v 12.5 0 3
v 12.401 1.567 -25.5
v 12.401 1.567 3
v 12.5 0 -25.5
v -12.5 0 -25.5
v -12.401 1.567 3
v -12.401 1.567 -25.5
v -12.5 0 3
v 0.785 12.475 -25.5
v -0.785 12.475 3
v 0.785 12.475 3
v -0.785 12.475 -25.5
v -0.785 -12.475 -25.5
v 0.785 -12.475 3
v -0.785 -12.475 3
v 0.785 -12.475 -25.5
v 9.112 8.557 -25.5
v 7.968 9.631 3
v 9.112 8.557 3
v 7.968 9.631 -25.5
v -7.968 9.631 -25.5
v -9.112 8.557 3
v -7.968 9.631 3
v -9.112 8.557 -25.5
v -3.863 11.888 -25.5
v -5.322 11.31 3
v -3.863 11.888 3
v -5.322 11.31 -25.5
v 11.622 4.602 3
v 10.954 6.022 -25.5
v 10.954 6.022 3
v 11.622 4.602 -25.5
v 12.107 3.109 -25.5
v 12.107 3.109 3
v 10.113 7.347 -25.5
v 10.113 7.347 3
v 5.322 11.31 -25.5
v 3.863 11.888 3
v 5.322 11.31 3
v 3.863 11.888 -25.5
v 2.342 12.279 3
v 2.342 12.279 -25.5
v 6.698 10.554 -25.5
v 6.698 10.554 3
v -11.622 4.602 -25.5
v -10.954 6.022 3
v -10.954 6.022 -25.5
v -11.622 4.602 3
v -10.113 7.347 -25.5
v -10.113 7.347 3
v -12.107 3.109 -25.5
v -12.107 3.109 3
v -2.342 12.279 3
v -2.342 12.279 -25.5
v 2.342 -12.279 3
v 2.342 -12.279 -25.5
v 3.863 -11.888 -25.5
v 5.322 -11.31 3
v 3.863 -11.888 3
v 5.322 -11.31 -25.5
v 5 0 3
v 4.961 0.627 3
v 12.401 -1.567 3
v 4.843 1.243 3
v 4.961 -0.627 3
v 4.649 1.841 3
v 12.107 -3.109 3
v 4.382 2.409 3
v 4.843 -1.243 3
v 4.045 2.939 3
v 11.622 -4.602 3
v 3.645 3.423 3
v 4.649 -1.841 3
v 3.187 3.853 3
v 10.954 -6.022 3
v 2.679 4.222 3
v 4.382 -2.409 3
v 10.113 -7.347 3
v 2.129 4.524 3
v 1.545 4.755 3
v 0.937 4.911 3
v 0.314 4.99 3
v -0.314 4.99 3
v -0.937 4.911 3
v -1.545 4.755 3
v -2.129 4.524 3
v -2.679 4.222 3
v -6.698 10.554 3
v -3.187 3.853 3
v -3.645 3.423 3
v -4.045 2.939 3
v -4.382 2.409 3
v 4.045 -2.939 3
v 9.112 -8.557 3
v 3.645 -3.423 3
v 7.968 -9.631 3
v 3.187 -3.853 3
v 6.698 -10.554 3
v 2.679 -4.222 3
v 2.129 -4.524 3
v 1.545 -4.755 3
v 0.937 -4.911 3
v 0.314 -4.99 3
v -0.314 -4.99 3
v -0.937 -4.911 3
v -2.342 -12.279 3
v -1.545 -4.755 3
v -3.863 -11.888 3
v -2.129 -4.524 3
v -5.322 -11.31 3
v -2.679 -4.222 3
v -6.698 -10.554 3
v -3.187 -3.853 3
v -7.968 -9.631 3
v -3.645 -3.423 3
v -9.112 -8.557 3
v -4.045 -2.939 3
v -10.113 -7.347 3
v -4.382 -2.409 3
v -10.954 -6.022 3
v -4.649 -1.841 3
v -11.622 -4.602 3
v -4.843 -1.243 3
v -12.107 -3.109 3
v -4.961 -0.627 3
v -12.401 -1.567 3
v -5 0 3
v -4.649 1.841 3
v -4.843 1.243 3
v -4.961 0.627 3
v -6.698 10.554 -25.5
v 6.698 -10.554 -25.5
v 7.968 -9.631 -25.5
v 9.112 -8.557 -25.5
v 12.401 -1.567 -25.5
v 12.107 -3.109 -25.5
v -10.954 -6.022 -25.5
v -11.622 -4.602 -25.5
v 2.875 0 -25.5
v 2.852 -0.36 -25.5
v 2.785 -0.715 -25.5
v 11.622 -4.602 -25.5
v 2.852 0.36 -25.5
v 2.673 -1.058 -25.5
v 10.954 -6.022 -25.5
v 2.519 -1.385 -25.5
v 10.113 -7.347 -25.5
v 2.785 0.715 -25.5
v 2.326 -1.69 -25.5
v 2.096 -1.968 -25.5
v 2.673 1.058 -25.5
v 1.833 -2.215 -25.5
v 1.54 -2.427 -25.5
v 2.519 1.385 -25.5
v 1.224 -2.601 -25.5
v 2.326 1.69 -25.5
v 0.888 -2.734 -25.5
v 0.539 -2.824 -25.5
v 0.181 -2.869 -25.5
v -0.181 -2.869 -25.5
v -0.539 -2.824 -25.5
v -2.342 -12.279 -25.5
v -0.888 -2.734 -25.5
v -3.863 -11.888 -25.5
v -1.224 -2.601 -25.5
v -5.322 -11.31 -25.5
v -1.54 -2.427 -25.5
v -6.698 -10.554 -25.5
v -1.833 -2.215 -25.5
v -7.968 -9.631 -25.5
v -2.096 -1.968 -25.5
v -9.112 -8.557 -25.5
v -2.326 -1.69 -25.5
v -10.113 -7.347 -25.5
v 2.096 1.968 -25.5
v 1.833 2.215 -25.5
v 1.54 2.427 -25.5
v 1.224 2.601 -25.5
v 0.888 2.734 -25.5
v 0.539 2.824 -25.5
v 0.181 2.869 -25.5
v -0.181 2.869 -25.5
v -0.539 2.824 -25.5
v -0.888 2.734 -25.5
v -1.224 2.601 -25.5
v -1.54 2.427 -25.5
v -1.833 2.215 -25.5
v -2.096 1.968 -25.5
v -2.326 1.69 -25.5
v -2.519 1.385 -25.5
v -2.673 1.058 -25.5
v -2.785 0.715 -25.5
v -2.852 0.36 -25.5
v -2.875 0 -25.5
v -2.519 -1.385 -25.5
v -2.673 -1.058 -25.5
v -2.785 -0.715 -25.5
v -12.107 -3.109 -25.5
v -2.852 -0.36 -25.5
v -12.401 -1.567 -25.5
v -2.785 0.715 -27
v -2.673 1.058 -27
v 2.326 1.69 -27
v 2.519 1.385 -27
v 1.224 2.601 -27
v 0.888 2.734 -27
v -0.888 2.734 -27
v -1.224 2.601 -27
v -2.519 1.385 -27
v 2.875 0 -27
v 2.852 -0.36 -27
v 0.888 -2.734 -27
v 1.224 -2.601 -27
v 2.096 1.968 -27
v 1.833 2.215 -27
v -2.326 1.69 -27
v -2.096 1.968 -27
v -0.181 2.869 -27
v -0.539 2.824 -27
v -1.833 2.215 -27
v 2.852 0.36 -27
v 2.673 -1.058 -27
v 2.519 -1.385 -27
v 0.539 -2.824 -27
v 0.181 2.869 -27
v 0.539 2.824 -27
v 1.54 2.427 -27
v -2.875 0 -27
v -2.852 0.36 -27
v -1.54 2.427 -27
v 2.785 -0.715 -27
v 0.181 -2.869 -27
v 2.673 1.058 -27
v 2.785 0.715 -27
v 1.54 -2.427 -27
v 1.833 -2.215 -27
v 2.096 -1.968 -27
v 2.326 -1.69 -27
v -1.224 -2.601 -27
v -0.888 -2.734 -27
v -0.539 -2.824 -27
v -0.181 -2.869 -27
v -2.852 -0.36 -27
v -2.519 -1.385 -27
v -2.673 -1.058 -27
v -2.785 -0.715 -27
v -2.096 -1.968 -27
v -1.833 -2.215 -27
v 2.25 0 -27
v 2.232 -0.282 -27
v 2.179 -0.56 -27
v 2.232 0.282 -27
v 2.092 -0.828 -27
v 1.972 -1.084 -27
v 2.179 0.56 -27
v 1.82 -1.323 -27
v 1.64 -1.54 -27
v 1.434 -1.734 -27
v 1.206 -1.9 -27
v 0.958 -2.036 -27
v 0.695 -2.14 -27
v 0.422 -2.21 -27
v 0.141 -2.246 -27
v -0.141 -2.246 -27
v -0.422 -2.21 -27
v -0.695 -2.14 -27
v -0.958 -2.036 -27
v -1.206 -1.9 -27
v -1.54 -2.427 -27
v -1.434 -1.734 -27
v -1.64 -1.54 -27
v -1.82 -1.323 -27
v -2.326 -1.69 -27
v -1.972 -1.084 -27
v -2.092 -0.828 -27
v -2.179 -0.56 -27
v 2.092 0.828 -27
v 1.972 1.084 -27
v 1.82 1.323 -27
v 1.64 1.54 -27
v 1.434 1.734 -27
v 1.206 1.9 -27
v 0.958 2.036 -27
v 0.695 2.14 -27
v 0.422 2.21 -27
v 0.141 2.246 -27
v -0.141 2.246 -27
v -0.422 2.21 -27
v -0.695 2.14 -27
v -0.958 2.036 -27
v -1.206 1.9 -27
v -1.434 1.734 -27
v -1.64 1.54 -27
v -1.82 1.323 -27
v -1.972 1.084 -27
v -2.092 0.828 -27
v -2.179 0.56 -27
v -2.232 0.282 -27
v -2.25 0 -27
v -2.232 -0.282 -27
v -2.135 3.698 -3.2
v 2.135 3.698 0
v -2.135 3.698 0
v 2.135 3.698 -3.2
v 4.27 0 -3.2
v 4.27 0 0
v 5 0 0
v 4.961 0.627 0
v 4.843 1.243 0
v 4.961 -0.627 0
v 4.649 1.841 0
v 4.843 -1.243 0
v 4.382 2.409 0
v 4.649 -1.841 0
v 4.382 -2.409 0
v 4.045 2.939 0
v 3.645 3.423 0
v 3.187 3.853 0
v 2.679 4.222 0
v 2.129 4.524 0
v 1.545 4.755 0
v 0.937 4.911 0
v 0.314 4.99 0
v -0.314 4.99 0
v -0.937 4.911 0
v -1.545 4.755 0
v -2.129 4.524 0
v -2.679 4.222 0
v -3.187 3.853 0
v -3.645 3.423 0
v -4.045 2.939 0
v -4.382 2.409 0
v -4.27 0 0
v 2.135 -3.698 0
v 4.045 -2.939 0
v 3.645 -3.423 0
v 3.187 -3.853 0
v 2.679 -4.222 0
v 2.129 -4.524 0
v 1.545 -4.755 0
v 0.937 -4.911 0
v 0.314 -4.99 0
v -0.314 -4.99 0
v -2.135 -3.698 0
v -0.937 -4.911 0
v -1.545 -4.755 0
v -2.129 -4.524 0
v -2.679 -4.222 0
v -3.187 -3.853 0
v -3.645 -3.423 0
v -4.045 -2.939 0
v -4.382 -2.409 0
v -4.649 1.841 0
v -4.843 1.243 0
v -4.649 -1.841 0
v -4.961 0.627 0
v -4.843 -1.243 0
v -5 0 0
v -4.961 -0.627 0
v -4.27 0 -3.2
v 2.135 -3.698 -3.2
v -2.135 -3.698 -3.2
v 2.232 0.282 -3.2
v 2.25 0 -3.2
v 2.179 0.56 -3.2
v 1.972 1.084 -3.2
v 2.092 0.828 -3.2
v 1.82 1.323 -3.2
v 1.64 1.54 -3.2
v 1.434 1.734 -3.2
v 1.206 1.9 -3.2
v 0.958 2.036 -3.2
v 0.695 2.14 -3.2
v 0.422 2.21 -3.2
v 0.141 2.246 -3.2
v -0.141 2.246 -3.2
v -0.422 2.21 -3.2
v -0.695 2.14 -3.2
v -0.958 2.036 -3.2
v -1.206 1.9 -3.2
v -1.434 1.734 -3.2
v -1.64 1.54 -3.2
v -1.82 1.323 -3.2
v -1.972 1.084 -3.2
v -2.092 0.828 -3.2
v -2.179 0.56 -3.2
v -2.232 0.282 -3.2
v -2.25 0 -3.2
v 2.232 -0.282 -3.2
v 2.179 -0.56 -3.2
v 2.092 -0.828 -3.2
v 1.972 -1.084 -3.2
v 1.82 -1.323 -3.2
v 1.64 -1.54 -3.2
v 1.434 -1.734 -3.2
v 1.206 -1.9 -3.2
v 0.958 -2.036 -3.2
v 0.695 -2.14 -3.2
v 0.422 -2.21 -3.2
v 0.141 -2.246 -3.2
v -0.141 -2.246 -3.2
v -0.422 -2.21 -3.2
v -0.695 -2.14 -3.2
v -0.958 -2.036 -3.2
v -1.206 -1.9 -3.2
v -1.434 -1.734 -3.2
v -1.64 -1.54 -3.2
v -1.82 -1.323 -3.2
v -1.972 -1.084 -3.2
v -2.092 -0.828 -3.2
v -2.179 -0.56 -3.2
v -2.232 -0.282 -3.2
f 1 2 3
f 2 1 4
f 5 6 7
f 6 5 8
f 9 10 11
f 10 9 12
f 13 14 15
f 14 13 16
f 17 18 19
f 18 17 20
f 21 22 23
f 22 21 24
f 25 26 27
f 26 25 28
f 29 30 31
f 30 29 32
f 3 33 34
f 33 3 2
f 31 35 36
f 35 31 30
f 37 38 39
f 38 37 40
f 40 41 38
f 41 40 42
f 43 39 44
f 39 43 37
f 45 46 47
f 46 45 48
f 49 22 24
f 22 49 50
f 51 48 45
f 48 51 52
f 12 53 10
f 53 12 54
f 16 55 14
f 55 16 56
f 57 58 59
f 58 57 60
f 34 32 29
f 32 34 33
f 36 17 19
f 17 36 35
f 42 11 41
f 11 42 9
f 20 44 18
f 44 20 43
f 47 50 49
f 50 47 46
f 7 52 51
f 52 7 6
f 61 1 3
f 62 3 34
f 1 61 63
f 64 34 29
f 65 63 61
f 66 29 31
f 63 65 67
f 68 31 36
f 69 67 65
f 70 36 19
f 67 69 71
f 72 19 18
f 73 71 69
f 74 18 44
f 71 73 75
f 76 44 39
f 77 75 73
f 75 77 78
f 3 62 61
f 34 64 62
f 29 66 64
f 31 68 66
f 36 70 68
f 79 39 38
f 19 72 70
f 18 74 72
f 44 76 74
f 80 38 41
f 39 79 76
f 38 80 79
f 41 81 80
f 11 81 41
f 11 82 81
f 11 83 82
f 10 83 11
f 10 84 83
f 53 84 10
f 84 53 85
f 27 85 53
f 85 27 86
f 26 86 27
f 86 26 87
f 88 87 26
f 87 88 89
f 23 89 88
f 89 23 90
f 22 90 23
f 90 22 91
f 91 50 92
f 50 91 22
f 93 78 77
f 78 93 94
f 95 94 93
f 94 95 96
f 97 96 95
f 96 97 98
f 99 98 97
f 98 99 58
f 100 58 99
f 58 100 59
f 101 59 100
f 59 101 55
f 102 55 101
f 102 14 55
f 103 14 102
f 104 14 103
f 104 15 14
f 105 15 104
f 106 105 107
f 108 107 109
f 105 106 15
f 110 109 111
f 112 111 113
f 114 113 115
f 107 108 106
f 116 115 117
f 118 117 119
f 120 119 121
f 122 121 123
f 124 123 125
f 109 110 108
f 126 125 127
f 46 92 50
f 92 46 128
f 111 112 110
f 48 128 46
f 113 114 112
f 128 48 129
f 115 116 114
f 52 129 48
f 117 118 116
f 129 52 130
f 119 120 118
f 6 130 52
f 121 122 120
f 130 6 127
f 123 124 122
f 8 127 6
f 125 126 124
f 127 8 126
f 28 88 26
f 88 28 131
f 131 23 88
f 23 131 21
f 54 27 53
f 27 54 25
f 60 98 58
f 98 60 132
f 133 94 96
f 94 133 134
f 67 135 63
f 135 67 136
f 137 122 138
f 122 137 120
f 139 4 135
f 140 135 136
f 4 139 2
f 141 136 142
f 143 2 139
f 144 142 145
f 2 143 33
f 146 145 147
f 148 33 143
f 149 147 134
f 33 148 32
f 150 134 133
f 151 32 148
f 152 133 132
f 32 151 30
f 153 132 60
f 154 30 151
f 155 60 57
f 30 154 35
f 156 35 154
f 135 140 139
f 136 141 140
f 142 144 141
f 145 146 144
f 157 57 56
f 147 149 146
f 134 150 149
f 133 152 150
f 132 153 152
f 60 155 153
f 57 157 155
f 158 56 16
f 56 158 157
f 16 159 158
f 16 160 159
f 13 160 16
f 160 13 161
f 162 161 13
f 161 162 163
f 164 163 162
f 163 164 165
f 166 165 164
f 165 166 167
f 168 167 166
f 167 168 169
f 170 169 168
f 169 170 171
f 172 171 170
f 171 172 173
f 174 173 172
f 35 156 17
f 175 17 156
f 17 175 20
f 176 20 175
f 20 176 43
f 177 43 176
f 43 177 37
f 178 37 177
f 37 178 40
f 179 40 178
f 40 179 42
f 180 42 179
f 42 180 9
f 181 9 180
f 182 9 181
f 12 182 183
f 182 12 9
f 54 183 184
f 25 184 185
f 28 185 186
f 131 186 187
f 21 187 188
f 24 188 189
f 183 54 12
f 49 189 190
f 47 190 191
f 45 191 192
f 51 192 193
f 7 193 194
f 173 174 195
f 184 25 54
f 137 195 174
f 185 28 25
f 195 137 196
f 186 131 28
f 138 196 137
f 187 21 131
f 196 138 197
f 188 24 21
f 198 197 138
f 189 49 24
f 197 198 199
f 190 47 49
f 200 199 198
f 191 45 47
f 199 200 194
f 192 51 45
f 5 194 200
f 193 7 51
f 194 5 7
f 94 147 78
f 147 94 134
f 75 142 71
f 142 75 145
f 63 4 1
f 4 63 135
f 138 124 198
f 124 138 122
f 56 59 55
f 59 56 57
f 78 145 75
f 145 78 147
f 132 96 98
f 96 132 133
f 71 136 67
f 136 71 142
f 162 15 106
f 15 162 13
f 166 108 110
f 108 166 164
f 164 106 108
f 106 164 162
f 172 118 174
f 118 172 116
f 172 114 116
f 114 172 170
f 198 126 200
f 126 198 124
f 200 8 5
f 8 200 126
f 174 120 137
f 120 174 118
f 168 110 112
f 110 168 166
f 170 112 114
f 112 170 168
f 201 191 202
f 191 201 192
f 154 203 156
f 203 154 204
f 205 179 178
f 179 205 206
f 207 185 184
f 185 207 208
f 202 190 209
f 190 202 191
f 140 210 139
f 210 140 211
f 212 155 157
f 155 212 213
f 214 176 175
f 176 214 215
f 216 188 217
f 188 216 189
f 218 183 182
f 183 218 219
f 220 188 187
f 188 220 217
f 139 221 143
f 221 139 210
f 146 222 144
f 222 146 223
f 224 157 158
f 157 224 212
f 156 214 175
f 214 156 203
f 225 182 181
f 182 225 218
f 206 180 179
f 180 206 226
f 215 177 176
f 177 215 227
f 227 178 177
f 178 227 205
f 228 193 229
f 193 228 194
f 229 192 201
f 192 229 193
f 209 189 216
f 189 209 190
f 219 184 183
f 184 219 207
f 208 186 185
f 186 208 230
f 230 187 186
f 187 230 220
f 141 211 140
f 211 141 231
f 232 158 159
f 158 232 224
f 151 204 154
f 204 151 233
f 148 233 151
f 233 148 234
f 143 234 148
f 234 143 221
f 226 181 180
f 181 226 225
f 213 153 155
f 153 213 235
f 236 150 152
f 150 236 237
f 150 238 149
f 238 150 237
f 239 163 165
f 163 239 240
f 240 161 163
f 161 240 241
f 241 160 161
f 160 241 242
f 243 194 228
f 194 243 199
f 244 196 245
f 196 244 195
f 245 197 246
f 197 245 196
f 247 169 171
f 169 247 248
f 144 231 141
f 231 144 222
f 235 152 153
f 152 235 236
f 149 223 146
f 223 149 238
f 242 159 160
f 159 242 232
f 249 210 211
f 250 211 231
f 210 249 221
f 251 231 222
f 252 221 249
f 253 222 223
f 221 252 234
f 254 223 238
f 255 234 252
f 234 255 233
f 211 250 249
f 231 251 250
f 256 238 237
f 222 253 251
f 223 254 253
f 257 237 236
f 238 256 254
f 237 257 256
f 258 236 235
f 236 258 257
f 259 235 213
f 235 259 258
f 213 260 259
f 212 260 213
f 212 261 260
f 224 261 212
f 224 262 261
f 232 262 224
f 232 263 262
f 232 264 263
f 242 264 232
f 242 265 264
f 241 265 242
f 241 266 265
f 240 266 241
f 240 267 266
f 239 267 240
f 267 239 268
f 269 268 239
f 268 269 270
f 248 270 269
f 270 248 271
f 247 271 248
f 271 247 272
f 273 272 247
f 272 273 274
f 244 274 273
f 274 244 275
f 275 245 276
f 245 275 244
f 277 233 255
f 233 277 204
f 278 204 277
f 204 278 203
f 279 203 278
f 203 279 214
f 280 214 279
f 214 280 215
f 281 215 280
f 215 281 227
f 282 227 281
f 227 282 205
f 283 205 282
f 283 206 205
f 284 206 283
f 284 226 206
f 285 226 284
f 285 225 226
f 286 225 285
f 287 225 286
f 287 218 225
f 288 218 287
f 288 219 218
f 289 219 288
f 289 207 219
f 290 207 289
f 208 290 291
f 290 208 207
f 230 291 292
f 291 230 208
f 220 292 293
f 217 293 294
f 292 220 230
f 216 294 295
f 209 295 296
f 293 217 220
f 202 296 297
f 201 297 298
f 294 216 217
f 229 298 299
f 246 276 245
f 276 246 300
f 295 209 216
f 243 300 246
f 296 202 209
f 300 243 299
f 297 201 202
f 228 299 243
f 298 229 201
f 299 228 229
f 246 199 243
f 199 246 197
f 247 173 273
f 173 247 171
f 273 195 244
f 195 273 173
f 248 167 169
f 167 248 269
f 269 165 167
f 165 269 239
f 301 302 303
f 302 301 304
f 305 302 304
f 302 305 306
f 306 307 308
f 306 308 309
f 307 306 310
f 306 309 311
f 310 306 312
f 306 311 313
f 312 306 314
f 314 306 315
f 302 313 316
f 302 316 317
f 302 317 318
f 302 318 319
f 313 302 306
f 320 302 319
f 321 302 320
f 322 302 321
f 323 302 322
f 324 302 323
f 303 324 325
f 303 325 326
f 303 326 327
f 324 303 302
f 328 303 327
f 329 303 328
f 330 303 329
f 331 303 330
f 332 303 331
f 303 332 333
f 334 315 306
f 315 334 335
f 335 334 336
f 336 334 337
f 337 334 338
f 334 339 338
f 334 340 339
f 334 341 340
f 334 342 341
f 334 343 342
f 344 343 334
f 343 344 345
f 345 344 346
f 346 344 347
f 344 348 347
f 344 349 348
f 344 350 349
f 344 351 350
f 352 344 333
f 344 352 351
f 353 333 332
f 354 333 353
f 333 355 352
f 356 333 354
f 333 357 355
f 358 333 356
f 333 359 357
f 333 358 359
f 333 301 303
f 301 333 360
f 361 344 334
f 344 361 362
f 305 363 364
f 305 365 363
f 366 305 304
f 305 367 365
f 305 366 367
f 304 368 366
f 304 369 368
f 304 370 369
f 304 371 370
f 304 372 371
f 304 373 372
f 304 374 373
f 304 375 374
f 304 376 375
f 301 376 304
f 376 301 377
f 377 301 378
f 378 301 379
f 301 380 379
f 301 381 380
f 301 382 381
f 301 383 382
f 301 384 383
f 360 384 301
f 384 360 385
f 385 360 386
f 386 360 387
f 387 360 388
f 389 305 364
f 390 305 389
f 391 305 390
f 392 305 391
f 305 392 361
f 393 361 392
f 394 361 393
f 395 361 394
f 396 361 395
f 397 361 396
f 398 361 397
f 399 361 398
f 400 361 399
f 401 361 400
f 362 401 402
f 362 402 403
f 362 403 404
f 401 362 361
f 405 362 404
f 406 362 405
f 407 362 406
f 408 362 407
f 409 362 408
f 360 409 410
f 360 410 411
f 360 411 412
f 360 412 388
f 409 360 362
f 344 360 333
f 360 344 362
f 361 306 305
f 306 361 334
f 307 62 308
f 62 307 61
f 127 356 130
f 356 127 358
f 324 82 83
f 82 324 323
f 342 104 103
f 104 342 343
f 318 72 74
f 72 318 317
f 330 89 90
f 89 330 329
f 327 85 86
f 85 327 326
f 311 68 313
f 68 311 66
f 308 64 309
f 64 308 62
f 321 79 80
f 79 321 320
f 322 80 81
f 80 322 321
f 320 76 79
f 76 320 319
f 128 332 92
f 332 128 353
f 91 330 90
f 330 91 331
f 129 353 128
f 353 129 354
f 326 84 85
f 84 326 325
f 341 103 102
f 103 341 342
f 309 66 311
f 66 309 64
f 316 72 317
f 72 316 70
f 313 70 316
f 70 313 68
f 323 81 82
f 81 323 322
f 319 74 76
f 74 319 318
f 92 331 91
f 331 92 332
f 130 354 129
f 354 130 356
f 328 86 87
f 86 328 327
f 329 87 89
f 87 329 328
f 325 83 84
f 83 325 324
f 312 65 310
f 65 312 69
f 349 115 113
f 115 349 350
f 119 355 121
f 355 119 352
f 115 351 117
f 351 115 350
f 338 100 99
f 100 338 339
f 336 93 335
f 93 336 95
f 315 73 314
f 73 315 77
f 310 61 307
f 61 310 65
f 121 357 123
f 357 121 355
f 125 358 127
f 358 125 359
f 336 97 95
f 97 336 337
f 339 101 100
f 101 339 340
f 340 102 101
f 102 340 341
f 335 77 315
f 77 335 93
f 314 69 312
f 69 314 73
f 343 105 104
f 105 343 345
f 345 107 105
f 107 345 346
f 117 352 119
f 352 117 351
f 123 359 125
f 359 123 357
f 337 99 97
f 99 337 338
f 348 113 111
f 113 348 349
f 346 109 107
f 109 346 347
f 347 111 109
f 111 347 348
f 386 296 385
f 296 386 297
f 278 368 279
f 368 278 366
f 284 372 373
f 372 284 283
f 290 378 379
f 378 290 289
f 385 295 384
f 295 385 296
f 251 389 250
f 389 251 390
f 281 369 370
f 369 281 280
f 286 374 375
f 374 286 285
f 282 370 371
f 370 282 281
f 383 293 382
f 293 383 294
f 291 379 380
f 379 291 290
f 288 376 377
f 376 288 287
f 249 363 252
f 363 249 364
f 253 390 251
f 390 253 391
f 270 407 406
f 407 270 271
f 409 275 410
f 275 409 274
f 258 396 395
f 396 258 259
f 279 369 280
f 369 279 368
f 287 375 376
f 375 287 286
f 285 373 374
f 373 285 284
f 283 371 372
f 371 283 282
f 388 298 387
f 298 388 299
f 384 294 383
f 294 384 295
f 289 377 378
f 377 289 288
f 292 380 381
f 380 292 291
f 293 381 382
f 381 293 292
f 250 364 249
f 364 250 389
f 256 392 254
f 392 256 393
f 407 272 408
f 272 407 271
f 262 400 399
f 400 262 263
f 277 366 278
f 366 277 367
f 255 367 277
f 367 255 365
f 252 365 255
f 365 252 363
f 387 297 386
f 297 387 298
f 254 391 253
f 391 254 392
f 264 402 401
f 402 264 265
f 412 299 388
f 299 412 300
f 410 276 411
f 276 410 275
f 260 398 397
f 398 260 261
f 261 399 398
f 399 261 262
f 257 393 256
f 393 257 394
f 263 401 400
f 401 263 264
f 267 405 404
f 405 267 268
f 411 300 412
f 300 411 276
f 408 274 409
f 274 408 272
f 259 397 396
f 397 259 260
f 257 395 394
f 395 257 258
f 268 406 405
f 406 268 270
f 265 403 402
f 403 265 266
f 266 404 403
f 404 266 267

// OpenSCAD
$fn = 50;

difference() {
	union() {
		translate(v = [0, 0, -25.5]) {
			cylinder(h = 28.5, r = 12.5);
		}
		#translate(v = [0, 0, -27.0]) {
			cylinder(h = 27, r = 2.875);
		}
	}
	union() {
		translate(v = [0, 0, 0]) {
			rotate(a = [0, 0, 0]) {
				difference() {
					union() {
						translate(v = [0, 0, -3.2]) {
							linear_extrude(height = 3.2) {
								polygon(points = [[4.2698, 0.0], [2.1349000000000005, 3.697755269078796], [-2.134899999999999, 3.6977552690787965], [-4.2698, 5.228996902999369e-16], [-2.134900000000002, -3.6977552690787956], [2.1348999999999974, -3.697755269078798]]);
							}
						}
					}
					union();
				}
			}
		}
		#cylinder(h = 3, r = 5.0);
		#translate(v = [0, 0, -100.0]) {
			cylinder(h = 200, r = 2.25);
		}
	}
}
